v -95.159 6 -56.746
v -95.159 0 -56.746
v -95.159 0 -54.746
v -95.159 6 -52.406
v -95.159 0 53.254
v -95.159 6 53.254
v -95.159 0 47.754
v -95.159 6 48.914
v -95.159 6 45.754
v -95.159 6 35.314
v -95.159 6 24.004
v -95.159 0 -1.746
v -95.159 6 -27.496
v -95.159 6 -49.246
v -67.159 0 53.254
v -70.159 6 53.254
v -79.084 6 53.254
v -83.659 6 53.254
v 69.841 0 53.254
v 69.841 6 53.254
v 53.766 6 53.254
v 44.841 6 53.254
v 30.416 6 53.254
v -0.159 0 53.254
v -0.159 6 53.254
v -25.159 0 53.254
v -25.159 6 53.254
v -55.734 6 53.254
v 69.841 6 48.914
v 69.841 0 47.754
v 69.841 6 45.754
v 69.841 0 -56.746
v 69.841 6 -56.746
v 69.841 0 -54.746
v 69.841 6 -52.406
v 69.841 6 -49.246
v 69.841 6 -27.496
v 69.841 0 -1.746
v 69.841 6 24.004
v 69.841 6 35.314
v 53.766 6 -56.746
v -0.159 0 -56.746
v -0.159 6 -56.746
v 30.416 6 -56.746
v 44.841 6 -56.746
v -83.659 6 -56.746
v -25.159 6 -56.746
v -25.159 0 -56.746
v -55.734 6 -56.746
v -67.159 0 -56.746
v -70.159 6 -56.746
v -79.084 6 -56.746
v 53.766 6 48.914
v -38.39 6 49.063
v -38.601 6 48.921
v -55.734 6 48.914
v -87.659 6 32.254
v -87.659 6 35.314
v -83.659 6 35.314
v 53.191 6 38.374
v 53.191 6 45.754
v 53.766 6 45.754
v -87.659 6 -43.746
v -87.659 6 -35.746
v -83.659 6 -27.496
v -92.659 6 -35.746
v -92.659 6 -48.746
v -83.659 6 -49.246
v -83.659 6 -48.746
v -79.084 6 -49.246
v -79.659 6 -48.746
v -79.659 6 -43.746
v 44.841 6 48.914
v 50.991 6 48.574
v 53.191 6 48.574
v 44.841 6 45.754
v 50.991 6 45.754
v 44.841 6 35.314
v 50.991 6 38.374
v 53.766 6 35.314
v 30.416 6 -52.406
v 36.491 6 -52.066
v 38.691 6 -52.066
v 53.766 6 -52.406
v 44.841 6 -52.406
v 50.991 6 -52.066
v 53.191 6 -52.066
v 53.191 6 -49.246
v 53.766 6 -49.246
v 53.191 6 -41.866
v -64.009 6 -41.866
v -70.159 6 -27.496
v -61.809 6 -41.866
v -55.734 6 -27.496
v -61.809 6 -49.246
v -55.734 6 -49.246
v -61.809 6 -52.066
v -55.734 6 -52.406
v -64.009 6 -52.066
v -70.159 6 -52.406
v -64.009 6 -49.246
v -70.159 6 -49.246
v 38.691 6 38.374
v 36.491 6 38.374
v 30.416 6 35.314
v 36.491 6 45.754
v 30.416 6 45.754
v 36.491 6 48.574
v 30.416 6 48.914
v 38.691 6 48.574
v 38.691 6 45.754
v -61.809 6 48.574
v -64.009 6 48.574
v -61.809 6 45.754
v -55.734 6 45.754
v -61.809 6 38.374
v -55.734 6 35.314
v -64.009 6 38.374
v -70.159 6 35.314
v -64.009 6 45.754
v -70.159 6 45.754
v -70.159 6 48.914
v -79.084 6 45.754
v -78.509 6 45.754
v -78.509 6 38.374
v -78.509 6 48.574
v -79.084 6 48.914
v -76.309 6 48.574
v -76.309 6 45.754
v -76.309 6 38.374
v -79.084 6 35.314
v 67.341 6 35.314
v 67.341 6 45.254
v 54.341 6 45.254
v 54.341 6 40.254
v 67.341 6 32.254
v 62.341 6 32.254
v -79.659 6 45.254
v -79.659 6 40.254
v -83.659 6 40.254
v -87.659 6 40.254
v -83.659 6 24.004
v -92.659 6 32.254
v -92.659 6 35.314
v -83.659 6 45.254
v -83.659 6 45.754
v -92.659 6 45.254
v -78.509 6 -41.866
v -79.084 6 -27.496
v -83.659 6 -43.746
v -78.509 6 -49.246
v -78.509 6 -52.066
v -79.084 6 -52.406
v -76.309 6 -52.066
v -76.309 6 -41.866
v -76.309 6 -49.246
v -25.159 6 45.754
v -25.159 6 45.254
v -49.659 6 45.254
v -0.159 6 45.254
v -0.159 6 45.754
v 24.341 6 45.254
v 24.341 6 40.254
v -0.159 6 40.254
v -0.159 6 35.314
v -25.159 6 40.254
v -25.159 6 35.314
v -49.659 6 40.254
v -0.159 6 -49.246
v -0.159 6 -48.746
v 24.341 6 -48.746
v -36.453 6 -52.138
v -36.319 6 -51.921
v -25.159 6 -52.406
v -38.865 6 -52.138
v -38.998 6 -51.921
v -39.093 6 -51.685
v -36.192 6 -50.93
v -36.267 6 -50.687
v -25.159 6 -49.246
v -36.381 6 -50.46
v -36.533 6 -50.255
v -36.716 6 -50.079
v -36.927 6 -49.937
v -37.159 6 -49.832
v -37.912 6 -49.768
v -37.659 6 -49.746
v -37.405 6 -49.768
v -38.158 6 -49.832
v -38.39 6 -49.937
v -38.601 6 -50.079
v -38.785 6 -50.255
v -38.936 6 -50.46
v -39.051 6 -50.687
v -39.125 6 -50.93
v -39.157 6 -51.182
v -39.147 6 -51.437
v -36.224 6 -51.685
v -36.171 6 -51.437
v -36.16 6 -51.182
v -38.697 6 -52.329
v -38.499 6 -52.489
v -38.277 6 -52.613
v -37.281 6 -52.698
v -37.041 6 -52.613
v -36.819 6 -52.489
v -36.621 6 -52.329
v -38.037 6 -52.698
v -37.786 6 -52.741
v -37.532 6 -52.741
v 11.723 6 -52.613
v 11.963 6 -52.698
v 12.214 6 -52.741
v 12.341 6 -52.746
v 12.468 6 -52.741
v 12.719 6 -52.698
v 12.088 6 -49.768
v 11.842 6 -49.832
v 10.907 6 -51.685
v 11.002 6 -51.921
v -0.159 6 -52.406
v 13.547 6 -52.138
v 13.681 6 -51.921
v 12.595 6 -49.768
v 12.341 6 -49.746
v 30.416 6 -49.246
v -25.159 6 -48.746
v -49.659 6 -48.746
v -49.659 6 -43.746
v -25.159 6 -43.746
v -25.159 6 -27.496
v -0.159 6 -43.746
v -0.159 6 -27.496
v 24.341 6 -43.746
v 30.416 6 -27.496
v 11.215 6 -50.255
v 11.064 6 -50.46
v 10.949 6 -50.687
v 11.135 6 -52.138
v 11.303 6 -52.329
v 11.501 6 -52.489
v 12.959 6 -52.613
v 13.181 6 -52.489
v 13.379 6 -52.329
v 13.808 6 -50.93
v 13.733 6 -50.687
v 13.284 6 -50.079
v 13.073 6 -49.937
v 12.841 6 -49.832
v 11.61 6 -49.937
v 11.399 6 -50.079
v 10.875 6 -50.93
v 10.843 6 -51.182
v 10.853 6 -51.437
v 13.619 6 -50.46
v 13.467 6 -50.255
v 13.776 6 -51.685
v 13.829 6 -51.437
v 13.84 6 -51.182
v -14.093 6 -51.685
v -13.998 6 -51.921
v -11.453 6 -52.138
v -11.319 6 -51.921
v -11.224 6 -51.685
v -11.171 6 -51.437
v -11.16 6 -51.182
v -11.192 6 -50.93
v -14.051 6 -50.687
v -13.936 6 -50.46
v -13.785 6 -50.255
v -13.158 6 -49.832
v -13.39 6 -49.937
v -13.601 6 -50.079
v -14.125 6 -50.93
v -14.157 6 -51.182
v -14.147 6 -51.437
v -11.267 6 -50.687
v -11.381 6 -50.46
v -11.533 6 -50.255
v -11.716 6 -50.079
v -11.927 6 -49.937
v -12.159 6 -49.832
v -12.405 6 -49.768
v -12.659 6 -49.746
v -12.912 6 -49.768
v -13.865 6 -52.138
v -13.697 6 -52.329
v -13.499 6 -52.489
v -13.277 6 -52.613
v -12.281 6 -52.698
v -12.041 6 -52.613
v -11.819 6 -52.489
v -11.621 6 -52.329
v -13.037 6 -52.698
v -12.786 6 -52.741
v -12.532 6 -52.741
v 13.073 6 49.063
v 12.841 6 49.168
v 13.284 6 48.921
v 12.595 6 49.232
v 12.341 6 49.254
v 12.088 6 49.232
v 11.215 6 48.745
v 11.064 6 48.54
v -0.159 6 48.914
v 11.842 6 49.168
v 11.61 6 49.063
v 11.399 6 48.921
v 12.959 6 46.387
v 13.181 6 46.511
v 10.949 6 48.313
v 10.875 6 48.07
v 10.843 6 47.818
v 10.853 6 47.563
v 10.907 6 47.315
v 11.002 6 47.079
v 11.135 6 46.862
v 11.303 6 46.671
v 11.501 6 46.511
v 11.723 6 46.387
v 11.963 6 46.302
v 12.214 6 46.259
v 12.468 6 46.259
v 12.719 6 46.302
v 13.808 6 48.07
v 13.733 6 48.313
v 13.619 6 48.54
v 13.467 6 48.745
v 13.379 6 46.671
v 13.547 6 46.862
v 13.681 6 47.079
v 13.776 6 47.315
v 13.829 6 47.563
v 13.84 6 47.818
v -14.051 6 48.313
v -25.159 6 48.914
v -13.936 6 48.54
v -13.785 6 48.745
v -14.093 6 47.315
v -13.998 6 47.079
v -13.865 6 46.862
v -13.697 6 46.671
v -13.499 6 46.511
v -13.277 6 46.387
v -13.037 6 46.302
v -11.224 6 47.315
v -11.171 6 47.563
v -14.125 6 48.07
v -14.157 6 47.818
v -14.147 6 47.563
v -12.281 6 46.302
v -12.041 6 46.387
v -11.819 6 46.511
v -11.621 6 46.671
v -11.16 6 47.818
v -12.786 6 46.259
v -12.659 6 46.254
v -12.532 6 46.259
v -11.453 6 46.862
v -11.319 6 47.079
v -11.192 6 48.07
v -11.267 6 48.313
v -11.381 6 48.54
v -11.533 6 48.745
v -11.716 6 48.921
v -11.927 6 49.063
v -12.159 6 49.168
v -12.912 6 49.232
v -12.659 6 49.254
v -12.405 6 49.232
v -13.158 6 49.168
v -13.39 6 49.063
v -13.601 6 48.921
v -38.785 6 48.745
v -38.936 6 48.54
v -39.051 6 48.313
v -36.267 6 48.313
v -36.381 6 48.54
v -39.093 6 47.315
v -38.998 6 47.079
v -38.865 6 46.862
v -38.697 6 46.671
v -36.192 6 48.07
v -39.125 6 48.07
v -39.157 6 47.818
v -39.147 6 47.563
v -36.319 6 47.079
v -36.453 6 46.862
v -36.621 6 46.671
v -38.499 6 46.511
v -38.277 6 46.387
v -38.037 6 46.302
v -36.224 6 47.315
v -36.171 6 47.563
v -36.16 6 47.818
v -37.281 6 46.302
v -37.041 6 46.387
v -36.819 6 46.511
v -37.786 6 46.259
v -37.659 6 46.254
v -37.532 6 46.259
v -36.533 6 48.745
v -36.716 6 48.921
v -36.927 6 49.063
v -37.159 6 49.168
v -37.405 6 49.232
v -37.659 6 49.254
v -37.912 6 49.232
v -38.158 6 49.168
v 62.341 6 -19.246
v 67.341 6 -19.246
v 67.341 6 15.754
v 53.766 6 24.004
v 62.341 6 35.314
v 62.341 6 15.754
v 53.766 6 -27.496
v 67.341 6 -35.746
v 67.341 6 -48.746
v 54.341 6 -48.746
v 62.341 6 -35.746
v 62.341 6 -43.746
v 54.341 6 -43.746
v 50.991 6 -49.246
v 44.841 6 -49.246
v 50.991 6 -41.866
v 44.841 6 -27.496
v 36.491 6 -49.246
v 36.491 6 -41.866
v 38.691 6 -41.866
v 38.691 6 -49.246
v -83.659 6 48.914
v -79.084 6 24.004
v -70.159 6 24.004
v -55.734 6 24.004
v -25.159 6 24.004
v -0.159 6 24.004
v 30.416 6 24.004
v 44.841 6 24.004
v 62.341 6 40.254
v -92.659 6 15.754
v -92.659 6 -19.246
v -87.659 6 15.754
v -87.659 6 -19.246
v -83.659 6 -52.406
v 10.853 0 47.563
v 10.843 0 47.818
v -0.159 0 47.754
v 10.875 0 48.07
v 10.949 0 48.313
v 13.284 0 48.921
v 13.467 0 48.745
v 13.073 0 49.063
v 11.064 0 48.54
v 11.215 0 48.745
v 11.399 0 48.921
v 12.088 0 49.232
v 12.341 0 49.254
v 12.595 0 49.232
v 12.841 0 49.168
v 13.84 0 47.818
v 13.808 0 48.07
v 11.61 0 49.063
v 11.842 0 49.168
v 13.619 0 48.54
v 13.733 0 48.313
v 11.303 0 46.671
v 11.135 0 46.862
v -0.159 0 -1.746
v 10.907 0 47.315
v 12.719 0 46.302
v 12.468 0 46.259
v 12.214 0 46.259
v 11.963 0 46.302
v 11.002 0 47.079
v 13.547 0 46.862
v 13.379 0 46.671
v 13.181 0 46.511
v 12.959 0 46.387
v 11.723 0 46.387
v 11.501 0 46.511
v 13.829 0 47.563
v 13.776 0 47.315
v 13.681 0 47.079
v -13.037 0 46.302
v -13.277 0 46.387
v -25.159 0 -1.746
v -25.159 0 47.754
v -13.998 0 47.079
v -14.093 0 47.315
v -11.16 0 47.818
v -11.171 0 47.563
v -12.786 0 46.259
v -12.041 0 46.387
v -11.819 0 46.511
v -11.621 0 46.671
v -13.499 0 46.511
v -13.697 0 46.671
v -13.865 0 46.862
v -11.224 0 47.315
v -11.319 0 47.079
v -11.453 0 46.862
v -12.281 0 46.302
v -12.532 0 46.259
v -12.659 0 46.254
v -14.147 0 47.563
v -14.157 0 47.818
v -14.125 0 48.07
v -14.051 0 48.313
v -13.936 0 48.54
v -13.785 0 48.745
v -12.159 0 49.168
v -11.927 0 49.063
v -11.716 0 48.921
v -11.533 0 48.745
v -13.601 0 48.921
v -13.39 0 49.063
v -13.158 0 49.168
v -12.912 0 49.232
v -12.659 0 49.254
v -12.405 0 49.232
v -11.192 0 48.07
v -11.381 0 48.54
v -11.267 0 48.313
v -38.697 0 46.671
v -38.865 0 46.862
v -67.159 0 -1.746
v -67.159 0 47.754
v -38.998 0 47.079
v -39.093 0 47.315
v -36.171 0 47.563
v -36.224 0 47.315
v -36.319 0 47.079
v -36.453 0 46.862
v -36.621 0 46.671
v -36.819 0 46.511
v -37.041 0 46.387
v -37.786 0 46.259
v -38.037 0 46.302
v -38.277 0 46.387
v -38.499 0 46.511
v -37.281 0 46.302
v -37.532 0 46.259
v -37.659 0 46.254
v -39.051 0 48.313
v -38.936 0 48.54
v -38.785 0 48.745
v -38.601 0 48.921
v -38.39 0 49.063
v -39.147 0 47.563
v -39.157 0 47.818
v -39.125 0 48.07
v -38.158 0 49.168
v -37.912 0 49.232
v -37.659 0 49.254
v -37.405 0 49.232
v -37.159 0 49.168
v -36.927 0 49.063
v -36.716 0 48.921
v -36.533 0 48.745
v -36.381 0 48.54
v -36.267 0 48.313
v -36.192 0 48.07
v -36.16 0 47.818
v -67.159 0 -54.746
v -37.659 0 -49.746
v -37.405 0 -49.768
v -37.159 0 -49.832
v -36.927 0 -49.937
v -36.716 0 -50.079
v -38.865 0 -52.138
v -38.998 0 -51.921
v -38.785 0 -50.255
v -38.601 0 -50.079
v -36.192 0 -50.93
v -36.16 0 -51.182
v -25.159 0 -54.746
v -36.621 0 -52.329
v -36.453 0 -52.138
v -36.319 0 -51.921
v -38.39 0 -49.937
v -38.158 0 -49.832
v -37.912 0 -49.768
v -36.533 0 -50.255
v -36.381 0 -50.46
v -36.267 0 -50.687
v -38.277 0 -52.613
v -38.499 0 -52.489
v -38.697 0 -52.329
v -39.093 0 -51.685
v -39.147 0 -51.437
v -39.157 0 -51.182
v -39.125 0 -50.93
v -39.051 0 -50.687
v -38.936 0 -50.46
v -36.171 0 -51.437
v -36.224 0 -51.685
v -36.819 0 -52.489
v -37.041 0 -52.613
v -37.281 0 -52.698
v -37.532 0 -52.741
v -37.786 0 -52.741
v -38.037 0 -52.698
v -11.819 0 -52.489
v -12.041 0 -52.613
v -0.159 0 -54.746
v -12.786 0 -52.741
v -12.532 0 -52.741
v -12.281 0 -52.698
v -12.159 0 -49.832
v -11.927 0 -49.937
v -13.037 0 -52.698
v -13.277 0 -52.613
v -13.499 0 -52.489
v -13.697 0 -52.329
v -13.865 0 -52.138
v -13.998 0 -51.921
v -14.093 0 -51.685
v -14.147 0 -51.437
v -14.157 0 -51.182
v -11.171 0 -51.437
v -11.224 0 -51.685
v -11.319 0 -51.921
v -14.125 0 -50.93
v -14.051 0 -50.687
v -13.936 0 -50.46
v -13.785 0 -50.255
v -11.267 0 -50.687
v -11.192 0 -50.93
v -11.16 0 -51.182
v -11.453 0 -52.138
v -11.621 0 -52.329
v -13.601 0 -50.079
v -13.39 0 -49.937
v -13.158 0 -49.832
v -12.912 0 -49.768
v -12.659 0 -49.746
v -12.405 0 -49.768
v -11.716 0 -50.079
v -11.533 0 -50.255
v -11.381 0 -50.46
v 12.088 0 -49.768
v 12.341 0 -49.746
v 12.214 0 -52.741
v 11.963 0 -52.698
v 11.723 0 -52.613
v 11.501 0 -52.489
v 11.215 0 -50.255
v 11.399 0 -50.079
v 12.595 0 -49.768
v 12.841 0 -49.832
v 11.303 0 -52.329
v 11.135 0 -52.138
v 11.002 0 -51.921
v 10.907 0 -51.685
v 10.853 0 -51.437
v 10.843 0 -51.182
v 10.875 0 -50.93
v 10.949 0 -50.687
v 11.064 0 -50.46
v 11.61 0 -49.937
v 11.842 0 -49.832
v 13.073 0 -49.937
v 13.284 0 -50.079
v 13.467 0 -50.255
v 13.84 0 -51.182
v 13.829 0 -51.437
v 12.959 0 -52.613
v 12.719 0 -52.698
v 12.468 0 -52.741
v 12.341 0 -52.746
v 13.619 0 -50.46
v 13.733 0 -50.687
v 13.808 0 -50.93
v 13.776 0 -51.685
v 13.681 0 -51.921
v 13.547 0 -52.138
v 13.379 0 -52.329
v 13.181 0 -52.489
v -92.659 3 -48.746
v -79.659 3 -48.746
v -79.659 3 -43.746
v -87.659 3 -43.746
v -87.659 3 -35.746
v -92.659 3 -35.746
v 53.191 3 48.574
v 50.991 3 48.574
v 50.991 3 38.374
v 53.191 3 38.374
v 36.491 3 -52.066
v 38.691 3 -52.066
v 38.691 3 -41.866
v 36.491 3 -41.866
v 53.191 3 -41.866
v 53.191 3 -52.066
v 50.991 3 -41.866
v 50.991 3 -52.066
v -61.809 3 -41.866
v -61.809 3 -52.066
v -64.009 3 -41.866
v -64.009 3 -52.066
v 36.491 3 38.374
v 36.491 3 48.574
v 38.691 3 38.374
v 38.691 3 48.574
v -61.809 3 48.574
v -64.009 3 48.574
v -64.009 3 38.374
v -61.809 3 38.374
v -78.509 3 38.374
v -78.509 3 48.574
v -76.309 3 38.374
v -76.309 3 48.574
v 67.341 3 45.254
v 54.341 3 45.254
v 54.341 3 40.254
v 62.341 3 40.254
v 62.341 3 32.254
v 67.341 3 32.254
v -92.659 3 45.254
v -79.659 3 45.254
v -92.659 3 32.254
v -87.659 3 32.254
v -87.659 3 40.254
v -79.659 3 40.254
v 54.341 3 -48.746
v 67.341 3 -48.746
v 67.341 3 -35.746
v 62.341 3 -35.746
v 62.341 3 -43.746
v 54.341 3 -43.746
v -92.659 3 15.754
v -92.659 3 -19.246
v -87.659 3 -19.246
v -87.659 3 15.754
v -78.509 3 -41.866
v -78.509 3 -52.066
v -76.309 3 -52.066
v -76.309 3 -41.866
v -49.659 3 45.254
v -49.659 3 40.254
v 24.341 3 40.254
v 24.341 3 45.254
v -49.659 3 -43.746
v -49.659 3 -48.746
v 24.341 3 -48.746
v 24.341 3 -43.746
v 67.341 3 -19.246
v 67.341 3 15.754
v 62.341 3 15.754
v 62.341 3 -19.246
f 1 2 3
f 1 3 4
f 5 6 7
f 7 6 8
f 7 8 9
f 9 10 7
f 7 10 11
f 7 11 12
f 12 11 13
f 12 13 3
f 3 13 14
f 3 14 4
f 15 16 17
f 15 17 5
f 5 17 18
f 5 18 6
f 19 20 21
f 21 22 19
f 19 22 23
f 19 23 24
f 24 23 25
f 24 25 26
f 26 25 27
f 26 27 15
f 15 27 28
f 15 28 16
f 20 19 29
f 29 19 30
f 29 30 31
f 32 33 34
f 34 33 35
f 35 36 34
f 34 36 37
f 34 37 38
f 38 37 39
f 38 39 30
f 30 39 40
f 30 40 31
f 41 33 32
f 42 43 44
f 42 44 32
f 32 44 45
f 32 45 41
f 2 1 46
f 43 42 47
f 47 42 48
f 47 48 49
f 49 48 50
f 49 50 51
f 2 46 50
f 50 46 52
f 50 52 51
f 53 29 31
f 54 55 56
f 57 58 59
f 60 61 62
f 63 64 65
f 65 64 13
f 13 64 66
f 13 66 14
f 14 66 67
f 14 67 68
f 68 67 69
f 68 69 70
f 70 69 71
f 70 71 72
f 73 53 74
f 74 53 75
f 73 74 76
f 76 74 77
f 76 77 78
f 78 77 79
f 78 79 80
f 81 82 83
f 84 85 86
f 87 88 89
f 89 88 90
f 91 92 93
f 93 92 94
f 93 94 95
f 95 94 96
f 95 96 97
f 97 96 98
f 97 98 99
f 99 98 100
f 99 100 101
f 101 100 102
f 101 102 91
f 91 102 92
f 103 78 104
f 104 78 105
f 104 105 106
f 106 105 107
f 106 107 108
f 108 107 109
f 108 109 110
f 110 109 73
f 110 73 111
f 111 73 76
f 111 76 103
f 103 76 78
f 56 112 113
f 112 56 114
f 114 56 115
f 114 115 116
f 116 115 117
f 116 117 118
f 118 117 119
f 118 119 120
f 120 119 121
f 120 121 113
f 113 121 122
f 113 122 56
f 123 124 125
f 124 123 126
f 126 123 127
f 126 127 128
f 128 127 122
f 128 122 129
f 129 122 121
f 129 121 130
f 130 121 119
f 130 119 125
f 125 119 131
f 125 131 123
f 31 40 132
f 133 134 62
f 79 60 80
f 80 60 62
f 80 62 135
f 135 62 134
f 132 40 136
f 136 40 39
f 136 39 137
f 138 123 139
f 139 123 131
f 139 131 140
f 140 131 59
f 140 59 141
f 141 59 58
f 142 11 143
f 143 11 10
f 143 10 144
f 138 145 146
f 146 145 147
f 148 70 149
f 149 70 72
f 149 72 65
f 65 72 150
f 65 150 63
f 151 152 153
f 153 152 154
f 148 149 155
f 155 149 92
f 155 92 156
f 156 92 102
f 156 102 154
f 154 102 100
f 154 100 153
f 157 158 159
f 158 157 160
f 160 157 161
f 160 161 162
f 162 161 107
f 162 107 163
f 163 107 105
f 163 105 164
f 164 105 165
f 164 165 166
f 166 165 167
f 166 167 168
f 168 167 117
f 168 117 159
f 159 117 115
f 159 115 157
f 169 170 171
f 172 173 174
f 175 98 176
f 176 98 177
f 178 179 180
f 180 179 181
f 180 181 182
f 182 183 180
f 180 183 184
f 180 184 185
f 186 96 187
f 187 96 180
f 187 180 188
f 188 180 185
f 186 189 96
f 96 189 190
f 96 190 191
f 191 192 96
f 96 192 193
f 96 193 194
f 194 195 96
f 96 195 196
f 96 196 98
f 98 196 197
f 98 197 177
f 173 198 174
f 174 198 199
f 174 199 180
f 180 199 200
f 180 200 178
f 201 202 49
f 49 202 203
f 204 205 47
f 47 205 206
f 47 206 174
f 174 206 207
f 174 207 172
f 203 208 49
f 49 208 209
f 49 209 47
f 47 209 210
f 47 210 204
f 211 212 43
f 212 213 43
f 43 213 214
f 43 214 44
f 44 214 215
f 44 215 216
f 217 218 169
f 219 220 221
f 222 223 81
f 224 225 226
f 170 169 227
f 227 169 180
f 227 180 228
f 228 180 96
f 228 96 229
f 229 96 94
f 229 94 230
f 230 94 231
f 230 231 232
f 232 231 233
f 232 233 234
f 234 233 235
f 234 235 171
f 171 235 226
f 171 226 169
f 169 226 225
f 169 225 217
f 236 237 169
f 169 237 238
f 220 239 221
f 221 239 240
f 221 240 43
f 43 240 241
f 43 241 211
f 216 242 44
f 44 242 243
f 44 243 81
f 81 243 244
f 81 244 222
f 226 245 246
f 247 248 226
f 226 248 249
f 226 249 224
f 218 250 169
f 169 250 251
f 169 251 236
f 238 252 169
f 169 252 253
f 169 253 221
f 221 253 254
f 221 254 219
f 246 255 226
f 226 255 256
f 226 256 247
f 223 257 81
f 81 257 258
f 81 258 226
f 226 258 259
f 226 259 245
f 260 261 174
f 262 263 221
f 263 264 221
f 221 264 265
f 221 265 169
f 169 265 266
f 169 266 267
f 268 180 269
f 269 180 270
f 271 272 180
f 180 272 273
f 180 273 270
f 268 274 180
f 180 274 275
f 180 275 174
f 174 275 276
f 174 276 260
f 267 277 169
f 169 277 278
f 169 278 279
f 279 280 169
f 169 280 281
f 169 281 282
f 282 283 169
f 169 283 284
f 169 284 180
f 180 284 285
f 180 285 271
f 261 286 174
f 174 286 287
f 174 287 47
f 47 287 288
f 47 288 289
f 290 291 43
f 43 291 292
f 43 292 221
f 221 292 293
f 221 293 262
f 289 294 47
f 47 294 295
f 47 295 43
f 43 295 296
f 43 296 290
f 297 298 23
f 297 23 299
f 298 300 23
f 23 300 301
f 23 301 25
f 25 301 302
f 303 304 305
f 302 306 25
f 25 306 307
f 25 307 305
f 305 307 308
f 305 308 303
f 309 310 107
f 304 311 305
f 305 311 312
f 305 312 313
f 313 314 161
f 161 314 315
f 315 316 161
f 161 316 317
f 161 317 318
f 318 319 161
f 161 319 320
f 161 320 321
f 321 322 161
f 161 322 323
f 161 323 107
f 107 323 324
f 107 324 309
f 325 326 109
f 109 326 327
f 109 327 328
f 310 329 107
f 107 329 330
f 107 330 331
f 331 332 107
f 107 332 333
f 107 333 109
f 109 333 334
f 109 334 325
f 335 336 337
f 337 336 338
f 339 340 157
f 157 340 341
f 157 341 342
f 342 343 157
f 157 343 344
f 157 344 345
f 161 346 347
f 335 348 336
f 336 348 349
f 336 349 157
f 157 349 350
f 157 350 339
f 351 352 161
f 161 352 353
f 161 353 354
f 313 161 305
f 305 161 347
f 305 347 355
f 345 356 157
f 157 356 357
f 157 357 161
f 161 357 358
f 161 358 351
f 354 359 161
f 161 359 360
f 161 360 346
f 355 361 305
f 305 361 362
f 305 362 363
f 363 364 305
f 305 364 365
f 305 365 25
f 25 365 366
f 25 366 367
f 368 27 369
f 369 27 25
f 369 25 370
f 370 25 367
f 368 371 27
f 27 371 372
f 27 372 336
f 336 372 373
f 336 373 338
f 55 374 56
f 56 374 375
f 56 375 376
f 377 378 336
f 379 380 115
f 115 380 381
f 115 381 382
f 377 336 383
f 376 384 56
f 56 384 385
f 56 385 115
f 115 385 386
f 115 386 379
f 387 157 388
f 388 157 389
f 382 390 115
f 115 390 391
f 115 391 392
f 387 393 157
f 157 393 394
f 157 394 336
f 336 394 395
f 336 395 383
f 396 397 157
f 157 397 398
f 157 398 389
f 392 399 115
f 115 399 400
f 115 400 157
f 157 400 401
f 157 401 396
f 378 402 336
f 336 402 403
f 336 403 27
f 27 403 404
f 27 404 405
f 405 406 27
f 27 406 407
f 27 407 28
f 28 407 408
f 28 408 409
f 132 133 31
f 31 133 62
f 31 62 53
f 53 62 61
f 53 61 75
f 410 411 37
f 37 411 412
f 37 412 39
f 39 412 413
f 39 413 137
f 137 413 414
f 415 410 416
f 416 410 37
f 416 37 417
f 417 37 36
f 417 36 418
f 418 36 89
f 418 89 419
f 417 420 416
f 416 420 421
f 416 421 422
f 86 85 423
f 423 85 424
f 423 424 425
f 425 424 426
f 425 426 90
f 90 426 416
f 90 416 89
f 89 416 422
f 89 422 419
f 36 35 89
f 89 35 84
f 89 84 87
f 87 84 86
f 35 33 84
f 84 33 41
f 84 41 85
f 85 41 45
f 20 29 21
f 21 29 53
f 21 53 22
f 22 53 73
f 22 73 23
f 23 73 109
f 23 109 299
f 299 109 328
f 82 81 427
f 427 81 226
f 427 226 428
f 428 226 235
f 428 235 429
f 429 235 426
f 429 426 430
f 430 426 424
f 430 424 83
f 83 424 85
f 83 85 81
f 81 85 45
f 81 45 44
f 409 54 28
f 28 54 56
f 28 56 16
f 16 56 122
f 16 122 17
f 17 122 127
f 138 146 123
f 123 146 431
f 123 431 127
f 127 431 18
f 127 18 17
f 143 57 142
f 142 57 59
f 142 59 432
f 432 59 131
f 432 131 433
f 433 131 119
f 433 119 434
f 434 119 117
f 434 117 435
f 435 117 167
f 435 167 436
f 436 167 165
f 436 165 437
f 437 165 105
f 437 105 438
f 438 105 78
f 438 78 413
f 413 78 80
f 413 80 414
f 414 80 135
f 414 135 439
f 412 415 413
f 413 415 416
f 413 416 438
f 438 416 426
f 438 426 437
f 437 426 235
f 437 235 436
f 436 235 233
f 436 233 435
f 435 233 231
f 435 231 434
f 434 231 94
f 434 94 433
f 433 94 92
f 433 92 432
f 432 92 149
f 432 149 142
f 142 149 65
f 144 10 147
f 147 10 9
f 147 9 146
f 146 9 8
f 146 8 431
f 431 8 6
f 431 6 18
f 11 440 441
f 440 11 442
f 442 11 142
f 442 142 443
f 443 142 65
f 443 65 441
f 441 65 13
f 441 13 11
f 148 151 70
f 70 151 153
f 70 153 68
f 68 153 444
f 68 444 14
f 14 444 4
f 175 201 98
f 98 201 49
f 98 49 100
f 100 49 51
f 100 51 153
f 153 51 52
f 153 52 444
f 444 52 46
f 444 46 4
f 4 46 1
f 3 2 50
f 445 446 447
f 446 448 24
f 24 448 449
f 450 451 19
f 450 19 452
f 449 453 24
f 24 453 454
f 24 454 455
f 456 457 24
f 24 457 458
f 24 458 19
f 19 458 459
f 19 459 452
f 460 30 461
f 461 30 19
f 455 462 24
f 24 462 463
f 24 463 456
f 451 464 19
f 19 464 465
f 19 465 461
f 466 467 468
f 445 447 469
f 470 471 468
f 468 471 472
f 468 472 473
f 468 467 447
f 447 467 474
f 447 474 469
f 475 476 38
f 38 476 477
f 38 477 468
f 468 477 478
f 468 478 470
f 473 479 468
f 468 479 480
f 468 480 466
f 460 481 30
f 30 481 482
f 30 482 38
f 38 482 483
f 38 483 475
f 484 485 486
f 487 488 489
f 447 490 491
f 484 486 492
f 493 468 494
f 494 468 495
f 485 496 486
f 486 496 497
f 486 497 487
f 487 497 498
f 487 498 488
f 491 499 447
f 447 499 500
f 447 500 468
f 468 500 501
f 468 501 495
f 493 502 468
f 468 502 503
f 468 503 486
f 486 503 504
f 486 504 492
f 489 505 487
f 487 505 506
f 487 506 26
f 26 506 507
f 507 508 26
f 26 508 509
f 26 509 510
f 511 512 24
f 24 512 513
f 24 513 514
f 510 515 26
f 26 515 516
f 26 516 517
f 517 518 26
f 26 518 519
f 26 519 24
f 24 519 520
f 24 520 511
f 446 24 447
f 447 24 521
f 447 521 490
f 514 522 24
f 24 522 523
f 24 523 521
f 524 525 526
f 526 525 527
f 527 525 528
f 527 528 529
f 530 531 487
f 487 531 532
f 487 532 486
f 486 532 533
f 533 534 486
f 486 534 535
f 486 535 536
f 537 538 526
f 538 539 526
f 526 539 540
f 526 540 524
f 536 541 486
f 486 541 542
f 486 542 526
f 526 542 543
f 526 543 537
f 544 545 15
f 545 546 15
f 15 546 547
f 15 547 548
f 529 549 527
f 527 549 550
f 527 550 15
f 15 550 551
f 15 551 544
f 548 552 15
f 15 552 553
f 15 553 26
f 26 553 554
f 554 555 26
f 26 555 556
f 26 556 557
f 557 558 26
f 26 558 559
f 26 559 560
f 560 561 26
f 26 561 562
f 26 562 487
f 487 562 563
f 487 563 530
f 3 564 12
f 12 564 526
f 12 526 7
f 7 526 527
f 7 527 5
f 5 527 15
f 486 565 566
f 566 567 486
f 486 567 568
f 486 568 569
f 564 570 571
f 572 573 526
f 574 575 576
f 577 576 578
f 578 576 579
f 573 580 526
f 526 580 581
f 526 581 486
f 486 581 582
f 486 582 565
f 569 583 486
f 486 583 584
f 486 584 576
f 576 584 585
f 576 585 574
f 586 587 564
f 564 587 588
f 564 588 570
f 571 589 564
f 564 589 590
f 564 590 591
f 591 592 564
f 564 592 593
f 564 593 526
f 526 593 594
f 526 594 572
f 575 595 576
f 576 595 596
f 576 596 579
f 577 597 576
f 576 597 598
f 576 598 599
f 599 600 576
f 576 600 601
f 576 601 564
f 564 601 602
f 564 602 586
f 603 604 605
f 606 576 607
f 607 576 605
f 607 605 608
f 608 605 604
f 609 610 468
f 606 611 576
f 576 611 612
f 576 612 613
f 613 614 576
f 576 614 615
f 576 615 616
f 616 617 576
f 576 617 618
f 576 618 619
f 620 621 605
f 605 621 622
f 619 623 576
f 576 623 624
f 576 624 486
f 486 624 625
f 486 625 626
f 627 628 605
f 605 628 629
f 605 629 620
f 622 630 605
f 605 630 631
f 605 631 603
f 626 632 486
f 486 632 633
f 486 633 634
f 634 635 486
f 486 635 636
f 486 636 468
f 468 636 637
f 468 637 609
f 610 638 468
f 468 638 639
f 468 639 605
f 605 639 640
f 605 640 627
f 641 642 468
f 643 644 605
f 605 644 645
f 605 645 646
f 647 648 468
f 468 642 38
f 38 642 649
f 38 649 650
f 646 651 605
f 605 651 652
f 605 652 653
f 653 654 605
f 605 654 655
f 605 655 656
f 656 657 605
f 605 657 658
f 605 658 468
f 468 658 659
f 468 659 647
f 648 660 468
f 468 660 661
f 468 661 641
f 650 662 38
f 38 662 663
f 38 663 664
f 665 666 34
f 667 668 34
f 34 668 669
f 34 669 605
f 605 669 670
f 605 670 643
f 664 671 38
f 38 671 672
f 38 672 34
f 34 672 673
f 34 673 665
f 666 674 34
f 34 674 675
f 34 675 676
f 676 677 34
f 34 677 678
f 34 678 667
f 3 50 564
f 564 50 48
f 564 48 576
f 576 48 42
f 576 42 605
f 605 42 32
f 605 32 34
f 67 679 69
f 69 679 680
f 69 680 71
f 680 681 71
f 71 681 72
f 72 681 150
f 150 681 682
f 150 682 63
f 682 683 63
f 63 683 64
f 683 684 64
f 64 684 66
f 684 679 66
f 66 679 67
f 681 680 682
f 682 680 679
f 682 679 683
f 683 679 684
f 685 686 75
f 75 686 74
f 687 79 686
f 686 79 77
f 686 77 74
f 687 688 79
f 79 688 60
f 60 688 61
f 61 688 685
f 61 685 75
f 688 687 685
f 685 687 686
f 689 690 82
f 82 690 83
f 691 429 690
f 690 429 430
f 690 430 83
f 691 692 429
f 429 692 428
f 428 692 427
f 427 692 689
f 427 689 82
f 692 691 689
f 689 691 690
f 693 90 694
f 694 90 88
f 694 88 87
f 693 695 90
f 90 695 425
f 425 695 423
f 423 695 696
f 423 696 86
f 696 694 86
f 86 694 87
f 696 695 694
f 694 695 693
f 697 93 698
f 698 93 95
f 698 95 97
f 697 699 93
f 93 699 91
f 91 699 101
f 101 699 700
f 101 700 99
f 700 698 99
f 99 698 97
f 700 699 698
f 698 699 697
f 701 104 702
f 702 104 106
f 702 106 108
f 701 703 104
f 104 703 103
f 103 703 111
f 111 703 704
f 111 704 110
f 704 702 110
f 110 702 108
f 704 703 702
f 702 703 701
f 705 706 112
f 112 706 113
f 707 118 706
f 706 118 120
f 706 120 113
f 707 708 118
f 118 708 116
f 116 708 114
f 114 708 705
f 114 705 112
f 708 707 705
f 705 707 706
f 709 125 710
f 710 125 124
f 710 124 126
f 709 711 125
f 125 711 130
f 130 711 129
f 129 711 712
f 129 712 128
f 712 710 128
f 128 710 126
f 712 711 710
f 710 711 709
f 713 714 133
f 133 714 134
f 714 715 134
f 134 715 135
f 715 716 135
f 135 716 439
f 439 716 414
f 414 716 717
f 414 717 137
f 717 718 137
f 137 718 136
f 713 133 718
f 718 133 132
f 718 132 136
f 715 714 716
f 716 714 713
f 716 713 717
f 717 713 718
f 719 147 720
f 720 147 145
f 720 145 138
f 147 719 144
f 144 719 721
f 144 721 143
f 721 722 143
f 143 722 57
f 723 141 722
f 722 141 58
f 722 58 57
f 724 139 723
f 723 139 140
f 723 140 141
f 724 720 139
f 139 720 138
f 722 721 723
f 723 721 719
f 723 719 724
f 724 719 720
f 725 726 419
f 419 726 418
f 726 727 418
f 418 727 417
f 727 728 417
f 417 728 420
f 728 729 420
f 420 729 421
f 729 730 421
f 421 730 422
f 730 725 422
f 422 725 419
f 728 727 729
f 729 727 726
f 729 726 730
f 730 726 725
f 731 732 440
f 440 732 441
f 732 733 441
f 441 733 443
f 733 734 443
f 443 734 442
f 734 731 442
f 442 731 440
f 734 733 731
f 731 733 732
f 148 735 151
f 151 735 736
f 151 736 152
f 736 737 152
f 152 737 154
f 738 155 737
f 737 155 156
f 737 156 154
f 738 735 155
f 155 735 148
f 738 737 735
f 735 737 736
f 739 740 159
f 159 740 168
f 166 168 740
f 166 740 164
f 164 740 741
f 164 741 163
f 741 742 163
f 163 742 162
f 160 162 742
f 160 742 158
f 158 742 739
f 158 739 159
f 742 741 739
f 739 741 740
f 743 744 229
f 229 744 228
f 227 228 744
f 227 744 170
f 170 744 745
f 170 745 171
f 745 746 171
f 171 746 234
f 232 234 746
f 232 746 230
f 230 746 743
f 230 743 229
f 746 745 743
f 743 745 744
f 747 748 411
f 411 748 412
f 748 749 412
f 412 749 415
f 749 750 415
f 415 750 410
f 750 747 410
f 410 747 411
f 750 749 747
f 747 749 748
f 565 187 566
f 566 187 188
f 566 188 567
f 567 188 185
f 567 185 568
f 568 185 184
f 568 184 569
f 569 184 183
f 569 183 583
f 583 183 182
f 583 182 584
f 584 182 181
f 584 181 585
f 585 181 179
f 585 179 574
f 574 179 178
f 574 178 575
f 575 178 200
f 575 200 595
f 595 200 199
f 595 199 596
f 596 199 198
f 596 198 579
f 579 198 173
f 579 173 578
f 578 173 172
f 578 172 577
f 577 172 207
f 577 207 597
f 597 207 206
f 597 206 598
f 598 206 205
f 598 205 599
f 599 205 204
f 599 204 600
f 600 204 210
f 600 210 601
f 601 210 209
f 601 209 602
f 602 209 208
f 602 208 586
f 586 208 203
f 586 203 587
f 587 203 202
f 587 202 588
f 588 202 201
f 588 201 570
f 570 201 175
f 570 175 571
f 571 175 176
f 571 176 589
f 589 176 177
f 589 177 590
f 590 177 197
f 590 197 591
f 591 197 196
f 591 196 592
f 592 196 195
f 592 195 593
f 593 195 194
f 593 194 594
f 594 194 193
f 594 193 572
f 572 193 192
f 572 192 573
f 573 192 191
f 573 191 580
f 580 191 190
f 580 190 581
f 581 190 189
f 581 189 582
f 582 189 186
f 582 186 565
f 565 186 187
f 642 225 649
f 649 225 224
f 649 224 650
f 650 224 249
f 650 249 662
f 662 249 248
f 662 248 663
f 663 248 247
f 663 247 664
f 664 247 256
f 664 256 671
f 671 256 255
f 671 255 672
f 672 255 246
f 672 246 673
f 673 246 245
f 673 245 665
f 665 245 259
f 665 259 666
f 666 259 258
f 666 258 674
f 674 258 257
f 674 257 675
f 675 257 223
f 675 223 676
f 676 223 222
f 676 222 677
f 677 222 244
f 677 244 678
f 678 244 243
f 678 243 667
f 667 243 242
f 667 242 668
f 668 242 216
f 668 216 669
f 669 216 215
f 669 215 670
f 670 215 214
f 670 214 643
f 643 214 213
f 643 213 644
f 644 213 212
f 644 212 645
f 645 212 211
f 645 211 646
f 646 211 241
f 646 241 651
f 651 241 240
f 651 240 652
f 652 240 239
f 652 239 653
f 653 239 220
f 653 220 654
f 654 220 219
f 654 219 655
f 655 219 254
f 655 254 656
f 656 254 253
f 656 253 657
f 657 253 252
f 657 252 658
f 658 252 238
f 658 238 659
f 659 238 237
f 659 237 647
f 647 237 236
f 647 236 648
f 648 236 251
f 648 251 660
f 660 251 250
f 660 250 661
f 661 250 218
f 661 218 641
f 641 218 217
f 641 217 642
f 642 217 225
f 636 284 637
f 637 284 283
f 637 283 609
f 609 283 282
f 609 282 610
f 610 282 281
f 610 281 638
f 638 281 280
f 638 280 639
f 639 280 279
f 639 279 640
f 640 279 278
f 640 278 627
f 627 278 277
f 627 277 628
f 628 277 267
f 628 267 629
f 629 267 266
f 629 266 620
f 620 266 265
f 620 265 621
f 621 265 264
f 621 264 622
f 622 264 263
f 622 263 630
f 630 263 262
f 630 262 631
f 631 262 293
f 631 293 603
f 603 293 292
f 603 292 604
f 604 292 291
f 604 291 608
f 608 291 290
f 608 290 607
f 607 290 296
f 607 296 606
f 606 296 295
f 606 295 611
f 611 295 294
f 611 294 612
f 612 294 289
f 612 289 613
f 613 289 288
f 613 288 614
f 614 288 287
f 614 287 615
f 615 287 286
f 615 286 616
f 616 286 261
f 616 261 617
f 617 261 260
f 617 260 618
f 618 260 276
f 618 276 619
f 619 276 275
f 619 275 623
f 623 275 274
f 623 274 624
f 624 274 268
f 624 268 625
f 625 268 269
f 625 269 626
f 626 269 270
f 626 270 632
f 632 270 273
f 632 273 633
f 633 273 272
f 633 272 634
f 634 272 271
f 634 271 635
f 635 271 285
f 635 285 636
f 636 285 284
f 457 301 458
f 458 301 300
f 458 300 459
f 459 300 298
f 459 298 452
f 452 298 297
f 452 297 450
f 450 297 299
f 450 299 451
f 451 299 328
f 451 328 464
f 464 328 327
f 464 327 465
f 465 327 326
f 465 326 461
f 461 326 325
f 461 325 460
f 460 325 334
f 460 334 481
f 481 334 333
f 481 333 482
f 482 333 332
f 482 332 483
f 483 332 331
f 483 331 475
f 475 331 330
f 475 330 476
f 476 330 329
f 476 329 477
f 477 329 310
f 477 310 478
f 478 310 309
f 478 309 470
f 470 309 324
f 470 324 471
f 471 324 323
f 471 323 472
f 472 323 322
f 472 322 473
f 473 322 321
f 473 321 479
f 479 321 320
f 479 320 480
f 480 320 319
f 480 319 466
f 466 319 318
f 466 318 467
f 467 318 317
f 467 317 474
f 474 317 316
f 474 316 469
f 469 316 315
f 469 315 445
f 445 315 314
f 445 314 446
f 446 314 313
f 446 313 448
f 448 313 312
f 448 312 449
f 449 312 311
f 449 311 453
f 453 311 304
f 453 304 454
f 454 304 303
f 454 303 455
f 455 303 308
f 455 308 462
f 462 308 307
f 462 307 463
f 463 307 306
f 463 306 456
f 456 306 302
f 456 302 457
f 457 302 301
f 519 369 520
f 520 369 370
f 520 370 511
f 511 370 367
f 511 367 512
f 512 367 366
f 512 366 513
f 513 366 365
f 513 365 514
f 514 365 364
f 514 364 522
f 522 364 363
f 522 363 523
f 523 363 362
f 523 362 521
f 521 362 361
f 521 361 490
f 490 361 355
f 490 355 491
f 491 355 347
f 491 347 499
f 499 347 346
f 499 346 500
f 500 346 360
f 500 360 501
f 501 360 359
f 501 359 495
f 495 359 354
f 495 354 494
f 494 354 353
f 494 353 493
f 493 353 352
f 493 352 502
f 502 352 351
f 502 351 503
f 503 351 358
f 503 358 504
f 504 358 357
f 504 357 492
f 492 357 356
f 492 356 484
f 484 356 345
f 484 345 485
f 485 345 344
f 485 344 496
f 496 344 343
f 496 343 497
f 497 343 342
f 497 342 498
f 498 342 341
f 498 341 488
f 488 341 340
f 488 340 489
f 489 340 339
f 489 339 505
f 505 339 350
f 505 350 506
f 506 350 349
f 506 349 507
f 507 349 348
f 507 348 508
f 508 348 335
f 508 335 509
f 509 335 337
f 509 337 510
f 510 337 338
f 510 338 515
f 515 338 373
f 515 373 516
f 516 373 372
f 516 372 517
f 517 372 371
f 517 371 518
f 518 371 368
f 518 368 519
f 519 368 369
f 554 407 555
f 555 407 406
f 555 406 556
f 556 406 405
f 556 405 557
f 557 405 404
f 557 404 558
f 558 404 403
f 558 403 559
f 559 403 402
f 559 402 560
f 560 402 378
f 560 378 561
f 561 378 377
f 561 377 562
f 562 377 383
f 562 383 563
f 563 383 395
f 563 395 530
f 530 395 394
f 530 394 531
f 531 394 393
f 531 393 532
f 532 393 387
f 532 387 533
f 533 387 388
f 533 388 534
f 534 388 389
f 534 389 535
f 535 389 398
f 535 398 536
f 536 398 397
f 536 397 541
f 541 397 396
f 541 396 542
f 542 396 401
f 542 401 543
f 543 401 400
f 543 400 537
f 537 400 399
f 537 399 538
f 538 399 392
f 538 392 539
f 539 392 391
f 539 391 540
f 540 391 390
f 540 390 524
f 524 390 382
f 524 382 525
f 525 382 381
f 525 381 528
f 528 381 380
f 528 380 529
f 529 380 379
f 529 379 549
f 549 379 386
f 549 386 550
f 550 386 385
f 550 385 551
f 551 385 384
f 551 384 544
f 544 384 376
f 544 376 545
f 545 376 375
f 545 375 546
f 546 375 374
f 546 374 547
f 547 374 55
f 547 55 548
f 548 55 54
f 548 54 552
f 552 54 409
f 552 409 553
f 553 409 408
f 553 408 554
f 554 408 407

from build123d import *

# Parameters (mm, degrees)
SKETCH1_W           = 165
SKETCH1_H           = 110
BOSS_EXTRUDE1_DEPTH = 6
SKETCH2_W           = 5
SKETCH2_H           = 35
SKETCH2_W_2         = 74
SKETCH2_H_2         = 5
SKETCH2_W_3         = 2.2
SKETCH2_H_3         = 10.2
CUT_EXTRUDE1_DEPTH  = 3
SKETCH3_R           = 1.5
CUT_EXTRUDE2_DEPTH  = 111.956279878


with BuildPart() as part:
    # Sketch1 → Boss-Extrude1 (new body)
    with BuildSketch(Plane(origin=(0, 0, 0), x_dir=(1, 0, 0), z_dir=(0, 1, 0))):
        with Locations((-12.658730159, 1.746031746)):
            Rectangle(SKETCH1_W, SKETCH1_H)
    extrude(amount=BOSS_EXTRUDE1_DEPTH)

    # Sketch2 → Cut-Extrude1 (cut)
    with BuildSketch(Plane(origin=(0, 6, 0), x_dir=(1, 0, 0), z_dir=(0, 1, 0))):
        Polygon((-92.658730159, 48.746031746), (-92.658730159, 35.746031746), (-87.658730159, 35.746031746), (-87.658730159, 43.746031746), (-79.658730159, 43.746031746), (-79.658730159, 48.746031746), align=None)
        Polygon((-79.658730159, -40.253968254), (-79.658730159, -45.253968254), (-92.658730159, -45.253968254), (-92.658730159, -32.253968254), (-87.658730159, -32.253968254), (-87.658730159, -40.253968254), align=None)
        Polygon((54.341269841, 43.746031746), (54.341269841, 48.746031746), (67.341269841, 48.746031746), (67.341269841, 35.746031746), (62.341269841, 35.746031746), (62.341269841, 43.746031746), align=None)
        Polygon((62.341269841, -40.253968254), (54.341269841, -40.253968254), (54.341269841, -45.253968254), (67.341269841, -45.253968254), (67.341269841, -32.253968254), (62.341269841, -32.253968254), align=None)
        with Locations((64.841269841, 1.746031746)):
            Rectangle(SKETCH2_W, SKETCH2_H)
        with Locations((-90.158730159, 1.746031746)):
            Rectangle(SKETCH2_W, SKETCH2_H)
        with Locations((-12.658730159, -42.753968254)):
            Rectangle(SKETCH2_W_2, SKETCH2_H_2)
        with Locations((-12.658730159, 46.246031746)):
            Rectangle(SKETCH2_W_2, SKETCH2_H_2)
        with Locations((-77.408730159, 46.966237914)):
            Rectangle(SKETCH2_W_3, SKETCH2_H_3)
        with Locations((-62.908730159, 46.966237914)):
            Rectangle(SKETCH2_W_3, SKETCH2_H_3)
        with Locations((52.091269841, 46.966237914)):
            Rectangle(SKETCH2_W_3, SKETCH2_H_3)
        with Locations((37.591269841, 46.966237914)):
            Rectangle(SKETCH2_W_3, SKETCH2_H_3)
        with Locations((52.091269841, -43.474174422)):
            Rectangle(SKETCH2_W_3, SKETCH2_H_3)
        with Locations((37.591269841, -43.474174422)):
            Rectangle(SKETCH2_W_3, SKETCH2_H_3)
        with Locations((-62.908730159, -43.474174422)):
            Rectangle(SKETCH2_W_3, SKETCH2_H_3)
        with Locations((-77.408730159, -43.474174422)):
            Rectangle(SKETCH2_W_3, SKETCH2_H_3)
    extrude(amount=-CUT_EXTRUDE1_DEPTH, mode=Mode.SUBTRACT)

    # Sketch3 → Cut-Extrude2 (cut, through all)
    with BuildSketch(Plane(origin=(0, 6, 0), x_dir=(1, 0, 0), z_dir=(0, 1, 0))):
        with Locations(Location((-37.658730159, 51.246031746, 0), (0, 0, 270))):
            Circle(SKETCH3_R)
        with Locations(Location((12.341269841, 51.246031746, 0), (0, 0, 90))):
            Circle(SKETCH3_R)
        with Locations(Location((-12.658730159, 51.246031746, 0), (0, 0, 270))):
            Circle(SKETCH3_R)
        with Locations(Location((12.341269841, -47.753968254, 0), (0, 0, 270))):
            Circle(SKETCH3_R)
        with Locations(Location((-12.658730159, -47.753968254, 0), (0, 0, 90))):
            Circle(SKETCH3_R)
        with Locations(Location((-37.658730159, -47.753968254, 0), (0, 0, 90))):
            Circle(SKETCH3_R)
    extrude(amount=-CUT_EXTRUDE2_DEPTH, mode=Mode.SUBTRACT)


solid = part.part
